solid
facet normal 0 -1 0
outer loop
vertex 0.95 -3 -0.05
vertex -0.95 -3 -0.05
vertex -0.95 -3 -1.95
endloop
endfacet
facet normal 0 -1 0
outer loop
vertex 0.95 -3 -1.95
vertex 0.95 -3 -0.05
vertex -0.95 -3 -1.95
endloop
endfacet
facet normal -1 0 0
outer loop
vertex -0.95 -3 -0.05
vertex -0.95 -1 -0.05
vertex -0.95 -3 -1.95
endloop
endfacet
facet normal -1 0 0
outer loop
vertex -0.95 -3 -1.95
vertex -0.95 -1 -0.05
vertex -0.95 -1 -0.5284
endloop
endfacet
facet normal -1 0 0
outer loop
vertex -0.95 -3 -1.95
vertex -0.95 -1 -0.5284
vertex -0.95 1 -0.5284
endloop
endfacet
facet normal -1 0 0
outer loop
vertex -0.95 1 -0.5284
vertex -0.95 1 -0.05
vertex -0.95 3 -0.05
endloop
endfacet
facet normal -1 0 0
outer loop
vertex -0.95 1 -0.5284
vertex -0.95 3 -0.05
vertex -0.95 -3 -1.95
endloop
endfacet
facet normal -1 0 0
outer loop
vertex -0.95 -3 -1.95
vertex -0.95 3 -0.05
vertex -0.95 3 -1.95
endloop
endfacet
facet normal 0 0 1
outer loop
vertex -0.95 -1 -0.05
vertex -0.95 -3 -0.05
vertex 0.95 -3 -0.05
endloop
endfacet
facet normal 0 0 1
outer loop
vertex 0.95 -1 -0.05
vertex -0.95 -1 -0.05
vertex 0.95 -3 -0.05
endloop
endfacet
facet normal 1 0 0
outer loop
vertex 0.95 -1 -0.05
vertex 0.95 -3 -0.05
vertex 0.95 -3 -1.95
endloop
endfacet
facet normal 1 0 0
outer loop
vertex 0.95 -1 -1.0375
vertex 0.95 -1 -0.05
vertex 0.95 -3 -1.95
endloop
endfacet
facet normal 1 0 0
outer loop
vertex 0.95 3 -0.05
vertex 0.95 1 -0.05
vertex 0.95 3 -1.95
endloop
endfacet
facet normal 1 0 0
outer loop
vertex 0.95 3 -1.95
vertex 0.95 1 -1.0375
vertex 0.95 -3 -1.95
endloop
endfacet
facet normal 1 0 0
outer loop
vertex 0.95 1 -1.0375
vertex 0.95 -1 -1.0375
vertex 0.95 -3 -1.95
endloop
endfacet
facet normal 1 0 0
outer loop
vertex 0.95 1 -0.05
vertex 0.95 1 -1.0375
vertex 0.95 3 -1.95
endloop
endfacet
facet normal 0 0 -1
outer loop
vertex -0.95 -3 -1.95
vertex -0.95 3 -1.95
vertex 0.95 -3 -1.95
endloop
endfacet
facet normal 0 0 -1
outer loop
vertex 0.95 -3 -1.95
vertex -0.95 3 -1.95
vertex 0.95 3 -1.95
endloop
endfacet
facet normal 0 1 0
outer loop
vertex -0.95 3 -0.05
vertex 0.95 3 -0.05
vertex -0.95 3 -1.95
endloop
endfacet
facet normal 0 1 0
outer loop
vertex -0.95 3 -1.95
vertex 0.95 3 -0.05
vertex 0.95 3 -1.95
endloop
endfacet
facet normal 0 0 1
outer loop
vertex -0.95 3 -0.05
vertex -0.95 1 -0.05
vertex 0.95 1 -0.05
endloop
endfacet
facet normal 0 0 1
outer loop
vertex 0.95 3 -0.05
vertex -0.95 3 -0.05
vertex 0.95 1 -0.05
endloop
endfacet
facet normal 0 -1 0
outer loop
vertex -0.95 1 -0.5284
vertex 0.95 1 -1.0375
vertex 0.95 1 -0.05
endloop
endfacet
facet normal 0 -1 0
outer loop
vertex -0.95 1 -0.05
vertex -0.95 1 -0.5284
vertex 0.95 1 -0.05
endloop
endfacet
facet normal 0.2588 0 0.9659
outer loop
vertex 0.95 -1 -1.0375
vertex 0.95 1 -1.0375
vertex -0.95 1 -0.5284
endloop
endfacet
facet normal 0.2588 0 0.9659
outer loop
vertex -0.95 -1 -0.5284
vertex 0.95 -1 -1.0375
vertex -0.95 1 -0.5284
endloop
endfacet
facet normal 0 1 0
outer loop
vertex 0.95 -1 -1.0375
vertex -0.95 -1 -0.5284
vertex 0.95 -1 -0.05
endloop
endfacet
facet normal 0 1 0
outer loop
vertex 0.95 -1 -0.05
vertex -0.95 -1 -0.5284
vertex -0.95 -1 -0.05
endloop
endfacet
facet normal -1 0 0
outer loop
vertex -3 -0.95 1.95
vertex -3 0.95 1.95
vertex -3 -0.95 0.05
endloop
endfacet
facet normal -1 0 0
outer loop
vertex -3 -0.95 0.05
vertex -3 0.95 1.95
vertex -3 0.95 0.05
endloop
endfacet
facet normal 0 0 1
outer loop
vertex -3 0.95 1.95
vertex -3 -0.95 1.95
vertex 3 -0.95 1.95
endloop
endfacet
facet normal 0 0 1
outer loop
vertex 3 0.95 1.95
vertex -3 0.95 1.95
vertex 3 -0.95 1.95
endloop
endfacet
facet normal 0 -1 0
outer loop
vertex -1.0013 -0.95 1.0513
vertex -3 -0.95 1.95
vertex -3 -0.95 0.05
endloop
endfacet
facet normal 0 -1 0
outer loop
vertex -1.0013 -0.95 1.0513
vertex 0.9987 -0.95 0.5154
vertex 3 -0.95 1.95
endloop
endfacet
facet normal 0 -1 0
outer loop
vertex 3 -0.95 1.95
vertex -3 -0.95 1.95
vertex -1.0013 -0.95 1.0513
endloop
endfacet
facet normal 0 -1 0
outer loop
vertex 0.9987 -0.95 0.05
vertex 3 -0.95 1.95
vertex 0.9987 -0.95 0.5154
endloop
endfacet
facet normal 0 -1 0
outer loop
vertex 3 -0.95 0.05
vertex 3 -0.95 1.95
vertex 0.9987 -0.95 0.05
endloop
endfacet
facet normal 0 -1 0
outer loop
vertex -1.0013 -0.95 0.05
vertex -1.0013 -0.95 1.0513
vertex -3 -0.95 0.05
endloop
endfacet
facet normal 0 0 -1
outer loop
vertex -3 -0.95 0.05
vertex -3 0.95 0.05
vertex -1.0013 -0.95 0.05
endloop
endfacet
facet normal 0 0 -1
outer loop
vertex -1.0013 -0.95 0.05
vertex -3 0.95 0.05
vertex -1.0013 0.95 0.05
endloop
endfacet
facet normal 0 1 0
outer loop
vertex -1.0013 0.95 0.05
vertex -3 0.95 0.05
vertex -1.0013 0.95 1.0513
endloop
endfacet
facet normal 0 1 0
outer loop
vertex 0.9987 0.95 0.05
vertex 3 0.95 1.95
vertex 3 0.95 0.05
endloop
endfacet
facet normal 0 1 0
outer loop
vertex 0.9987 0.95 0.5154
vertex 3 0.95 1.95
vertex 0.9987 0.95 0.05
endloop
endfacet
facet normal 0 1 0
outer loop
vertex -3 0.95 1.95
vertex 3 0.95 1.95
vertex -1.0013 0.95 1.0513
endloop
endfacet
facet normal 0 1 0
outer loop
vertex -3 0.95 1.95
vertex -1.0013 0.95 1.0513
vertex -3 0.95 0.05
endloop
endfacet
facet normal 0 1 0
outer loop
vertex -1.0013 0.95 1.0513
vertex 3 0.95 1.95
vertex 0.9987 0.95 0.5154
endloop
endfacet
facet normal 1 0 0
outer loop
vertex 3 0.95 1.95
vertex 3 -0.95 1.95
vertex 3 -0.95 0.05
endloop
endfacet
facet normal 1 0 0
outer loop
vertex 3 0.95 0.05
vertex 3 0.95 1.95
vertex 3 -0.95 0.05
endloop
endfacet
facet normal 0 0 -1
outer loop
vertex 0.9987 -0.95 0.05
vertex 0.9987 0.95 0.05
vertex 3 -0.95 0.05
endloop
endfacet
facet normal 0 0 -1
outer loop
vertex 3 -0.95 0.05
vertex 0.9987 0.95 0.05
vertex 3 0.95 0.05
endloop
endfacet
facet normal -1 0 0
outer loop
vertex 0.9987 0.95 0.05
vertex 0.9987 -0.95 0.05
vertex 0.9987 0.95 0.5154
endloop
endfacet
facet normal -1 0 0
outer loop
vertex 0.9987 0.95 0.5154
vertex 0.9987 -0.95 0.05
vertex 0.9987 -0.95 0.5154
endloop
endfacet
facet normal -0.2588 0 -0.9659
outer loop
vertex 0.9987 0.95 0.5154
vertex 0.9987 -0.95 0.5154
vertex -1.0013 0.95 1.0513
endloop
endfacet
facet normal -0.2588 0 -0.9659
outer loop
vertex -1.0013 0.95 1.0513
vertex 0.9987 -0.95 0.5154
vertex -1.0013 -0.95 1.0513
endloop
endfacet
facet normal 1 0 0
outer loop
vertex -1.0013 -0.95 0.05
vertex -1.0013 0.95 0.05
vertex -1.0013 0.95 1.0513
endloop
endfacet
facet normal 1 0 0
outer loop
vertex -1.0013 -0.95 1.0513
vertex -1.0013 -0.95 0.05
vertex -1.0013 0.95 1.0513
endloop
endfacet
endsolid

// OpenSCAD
//lapa.scad
module vyb()  { 
    rotate ([0, 15, 0]) difference () {
     cube([6, 2, 2], center=true);
     difference  (){
         cube([6, 2, 2], center=true);
         color ("red"){translate ([2, -1.2, 0.5]) rotate([-15, 0, 90]) cube([6, 2, 2]);}
        }
    }
 }
module vyblap() {
      translate([0.0626, 0, -0.0324]) color("cyan") rotate ([0, 180, 0]) translate([-1, 0, 0]) vyb();
}

module flap() {
      difference(){
//cube([6, 1.9, 1.9]);
translate([0, 0, -1]) cube([6, 1.9, 1.9], center=true);
vyblap();}
}

module slap() {
     difference(){
//cube([6, 1.9, 1.9]);
translate([0, 0, -1]) rotate([90, 0, 90])cube([6, 1.9, 1.9], center=true);
vyblap();}
}
slap();
rotate([0, 180, 0]) flap();
